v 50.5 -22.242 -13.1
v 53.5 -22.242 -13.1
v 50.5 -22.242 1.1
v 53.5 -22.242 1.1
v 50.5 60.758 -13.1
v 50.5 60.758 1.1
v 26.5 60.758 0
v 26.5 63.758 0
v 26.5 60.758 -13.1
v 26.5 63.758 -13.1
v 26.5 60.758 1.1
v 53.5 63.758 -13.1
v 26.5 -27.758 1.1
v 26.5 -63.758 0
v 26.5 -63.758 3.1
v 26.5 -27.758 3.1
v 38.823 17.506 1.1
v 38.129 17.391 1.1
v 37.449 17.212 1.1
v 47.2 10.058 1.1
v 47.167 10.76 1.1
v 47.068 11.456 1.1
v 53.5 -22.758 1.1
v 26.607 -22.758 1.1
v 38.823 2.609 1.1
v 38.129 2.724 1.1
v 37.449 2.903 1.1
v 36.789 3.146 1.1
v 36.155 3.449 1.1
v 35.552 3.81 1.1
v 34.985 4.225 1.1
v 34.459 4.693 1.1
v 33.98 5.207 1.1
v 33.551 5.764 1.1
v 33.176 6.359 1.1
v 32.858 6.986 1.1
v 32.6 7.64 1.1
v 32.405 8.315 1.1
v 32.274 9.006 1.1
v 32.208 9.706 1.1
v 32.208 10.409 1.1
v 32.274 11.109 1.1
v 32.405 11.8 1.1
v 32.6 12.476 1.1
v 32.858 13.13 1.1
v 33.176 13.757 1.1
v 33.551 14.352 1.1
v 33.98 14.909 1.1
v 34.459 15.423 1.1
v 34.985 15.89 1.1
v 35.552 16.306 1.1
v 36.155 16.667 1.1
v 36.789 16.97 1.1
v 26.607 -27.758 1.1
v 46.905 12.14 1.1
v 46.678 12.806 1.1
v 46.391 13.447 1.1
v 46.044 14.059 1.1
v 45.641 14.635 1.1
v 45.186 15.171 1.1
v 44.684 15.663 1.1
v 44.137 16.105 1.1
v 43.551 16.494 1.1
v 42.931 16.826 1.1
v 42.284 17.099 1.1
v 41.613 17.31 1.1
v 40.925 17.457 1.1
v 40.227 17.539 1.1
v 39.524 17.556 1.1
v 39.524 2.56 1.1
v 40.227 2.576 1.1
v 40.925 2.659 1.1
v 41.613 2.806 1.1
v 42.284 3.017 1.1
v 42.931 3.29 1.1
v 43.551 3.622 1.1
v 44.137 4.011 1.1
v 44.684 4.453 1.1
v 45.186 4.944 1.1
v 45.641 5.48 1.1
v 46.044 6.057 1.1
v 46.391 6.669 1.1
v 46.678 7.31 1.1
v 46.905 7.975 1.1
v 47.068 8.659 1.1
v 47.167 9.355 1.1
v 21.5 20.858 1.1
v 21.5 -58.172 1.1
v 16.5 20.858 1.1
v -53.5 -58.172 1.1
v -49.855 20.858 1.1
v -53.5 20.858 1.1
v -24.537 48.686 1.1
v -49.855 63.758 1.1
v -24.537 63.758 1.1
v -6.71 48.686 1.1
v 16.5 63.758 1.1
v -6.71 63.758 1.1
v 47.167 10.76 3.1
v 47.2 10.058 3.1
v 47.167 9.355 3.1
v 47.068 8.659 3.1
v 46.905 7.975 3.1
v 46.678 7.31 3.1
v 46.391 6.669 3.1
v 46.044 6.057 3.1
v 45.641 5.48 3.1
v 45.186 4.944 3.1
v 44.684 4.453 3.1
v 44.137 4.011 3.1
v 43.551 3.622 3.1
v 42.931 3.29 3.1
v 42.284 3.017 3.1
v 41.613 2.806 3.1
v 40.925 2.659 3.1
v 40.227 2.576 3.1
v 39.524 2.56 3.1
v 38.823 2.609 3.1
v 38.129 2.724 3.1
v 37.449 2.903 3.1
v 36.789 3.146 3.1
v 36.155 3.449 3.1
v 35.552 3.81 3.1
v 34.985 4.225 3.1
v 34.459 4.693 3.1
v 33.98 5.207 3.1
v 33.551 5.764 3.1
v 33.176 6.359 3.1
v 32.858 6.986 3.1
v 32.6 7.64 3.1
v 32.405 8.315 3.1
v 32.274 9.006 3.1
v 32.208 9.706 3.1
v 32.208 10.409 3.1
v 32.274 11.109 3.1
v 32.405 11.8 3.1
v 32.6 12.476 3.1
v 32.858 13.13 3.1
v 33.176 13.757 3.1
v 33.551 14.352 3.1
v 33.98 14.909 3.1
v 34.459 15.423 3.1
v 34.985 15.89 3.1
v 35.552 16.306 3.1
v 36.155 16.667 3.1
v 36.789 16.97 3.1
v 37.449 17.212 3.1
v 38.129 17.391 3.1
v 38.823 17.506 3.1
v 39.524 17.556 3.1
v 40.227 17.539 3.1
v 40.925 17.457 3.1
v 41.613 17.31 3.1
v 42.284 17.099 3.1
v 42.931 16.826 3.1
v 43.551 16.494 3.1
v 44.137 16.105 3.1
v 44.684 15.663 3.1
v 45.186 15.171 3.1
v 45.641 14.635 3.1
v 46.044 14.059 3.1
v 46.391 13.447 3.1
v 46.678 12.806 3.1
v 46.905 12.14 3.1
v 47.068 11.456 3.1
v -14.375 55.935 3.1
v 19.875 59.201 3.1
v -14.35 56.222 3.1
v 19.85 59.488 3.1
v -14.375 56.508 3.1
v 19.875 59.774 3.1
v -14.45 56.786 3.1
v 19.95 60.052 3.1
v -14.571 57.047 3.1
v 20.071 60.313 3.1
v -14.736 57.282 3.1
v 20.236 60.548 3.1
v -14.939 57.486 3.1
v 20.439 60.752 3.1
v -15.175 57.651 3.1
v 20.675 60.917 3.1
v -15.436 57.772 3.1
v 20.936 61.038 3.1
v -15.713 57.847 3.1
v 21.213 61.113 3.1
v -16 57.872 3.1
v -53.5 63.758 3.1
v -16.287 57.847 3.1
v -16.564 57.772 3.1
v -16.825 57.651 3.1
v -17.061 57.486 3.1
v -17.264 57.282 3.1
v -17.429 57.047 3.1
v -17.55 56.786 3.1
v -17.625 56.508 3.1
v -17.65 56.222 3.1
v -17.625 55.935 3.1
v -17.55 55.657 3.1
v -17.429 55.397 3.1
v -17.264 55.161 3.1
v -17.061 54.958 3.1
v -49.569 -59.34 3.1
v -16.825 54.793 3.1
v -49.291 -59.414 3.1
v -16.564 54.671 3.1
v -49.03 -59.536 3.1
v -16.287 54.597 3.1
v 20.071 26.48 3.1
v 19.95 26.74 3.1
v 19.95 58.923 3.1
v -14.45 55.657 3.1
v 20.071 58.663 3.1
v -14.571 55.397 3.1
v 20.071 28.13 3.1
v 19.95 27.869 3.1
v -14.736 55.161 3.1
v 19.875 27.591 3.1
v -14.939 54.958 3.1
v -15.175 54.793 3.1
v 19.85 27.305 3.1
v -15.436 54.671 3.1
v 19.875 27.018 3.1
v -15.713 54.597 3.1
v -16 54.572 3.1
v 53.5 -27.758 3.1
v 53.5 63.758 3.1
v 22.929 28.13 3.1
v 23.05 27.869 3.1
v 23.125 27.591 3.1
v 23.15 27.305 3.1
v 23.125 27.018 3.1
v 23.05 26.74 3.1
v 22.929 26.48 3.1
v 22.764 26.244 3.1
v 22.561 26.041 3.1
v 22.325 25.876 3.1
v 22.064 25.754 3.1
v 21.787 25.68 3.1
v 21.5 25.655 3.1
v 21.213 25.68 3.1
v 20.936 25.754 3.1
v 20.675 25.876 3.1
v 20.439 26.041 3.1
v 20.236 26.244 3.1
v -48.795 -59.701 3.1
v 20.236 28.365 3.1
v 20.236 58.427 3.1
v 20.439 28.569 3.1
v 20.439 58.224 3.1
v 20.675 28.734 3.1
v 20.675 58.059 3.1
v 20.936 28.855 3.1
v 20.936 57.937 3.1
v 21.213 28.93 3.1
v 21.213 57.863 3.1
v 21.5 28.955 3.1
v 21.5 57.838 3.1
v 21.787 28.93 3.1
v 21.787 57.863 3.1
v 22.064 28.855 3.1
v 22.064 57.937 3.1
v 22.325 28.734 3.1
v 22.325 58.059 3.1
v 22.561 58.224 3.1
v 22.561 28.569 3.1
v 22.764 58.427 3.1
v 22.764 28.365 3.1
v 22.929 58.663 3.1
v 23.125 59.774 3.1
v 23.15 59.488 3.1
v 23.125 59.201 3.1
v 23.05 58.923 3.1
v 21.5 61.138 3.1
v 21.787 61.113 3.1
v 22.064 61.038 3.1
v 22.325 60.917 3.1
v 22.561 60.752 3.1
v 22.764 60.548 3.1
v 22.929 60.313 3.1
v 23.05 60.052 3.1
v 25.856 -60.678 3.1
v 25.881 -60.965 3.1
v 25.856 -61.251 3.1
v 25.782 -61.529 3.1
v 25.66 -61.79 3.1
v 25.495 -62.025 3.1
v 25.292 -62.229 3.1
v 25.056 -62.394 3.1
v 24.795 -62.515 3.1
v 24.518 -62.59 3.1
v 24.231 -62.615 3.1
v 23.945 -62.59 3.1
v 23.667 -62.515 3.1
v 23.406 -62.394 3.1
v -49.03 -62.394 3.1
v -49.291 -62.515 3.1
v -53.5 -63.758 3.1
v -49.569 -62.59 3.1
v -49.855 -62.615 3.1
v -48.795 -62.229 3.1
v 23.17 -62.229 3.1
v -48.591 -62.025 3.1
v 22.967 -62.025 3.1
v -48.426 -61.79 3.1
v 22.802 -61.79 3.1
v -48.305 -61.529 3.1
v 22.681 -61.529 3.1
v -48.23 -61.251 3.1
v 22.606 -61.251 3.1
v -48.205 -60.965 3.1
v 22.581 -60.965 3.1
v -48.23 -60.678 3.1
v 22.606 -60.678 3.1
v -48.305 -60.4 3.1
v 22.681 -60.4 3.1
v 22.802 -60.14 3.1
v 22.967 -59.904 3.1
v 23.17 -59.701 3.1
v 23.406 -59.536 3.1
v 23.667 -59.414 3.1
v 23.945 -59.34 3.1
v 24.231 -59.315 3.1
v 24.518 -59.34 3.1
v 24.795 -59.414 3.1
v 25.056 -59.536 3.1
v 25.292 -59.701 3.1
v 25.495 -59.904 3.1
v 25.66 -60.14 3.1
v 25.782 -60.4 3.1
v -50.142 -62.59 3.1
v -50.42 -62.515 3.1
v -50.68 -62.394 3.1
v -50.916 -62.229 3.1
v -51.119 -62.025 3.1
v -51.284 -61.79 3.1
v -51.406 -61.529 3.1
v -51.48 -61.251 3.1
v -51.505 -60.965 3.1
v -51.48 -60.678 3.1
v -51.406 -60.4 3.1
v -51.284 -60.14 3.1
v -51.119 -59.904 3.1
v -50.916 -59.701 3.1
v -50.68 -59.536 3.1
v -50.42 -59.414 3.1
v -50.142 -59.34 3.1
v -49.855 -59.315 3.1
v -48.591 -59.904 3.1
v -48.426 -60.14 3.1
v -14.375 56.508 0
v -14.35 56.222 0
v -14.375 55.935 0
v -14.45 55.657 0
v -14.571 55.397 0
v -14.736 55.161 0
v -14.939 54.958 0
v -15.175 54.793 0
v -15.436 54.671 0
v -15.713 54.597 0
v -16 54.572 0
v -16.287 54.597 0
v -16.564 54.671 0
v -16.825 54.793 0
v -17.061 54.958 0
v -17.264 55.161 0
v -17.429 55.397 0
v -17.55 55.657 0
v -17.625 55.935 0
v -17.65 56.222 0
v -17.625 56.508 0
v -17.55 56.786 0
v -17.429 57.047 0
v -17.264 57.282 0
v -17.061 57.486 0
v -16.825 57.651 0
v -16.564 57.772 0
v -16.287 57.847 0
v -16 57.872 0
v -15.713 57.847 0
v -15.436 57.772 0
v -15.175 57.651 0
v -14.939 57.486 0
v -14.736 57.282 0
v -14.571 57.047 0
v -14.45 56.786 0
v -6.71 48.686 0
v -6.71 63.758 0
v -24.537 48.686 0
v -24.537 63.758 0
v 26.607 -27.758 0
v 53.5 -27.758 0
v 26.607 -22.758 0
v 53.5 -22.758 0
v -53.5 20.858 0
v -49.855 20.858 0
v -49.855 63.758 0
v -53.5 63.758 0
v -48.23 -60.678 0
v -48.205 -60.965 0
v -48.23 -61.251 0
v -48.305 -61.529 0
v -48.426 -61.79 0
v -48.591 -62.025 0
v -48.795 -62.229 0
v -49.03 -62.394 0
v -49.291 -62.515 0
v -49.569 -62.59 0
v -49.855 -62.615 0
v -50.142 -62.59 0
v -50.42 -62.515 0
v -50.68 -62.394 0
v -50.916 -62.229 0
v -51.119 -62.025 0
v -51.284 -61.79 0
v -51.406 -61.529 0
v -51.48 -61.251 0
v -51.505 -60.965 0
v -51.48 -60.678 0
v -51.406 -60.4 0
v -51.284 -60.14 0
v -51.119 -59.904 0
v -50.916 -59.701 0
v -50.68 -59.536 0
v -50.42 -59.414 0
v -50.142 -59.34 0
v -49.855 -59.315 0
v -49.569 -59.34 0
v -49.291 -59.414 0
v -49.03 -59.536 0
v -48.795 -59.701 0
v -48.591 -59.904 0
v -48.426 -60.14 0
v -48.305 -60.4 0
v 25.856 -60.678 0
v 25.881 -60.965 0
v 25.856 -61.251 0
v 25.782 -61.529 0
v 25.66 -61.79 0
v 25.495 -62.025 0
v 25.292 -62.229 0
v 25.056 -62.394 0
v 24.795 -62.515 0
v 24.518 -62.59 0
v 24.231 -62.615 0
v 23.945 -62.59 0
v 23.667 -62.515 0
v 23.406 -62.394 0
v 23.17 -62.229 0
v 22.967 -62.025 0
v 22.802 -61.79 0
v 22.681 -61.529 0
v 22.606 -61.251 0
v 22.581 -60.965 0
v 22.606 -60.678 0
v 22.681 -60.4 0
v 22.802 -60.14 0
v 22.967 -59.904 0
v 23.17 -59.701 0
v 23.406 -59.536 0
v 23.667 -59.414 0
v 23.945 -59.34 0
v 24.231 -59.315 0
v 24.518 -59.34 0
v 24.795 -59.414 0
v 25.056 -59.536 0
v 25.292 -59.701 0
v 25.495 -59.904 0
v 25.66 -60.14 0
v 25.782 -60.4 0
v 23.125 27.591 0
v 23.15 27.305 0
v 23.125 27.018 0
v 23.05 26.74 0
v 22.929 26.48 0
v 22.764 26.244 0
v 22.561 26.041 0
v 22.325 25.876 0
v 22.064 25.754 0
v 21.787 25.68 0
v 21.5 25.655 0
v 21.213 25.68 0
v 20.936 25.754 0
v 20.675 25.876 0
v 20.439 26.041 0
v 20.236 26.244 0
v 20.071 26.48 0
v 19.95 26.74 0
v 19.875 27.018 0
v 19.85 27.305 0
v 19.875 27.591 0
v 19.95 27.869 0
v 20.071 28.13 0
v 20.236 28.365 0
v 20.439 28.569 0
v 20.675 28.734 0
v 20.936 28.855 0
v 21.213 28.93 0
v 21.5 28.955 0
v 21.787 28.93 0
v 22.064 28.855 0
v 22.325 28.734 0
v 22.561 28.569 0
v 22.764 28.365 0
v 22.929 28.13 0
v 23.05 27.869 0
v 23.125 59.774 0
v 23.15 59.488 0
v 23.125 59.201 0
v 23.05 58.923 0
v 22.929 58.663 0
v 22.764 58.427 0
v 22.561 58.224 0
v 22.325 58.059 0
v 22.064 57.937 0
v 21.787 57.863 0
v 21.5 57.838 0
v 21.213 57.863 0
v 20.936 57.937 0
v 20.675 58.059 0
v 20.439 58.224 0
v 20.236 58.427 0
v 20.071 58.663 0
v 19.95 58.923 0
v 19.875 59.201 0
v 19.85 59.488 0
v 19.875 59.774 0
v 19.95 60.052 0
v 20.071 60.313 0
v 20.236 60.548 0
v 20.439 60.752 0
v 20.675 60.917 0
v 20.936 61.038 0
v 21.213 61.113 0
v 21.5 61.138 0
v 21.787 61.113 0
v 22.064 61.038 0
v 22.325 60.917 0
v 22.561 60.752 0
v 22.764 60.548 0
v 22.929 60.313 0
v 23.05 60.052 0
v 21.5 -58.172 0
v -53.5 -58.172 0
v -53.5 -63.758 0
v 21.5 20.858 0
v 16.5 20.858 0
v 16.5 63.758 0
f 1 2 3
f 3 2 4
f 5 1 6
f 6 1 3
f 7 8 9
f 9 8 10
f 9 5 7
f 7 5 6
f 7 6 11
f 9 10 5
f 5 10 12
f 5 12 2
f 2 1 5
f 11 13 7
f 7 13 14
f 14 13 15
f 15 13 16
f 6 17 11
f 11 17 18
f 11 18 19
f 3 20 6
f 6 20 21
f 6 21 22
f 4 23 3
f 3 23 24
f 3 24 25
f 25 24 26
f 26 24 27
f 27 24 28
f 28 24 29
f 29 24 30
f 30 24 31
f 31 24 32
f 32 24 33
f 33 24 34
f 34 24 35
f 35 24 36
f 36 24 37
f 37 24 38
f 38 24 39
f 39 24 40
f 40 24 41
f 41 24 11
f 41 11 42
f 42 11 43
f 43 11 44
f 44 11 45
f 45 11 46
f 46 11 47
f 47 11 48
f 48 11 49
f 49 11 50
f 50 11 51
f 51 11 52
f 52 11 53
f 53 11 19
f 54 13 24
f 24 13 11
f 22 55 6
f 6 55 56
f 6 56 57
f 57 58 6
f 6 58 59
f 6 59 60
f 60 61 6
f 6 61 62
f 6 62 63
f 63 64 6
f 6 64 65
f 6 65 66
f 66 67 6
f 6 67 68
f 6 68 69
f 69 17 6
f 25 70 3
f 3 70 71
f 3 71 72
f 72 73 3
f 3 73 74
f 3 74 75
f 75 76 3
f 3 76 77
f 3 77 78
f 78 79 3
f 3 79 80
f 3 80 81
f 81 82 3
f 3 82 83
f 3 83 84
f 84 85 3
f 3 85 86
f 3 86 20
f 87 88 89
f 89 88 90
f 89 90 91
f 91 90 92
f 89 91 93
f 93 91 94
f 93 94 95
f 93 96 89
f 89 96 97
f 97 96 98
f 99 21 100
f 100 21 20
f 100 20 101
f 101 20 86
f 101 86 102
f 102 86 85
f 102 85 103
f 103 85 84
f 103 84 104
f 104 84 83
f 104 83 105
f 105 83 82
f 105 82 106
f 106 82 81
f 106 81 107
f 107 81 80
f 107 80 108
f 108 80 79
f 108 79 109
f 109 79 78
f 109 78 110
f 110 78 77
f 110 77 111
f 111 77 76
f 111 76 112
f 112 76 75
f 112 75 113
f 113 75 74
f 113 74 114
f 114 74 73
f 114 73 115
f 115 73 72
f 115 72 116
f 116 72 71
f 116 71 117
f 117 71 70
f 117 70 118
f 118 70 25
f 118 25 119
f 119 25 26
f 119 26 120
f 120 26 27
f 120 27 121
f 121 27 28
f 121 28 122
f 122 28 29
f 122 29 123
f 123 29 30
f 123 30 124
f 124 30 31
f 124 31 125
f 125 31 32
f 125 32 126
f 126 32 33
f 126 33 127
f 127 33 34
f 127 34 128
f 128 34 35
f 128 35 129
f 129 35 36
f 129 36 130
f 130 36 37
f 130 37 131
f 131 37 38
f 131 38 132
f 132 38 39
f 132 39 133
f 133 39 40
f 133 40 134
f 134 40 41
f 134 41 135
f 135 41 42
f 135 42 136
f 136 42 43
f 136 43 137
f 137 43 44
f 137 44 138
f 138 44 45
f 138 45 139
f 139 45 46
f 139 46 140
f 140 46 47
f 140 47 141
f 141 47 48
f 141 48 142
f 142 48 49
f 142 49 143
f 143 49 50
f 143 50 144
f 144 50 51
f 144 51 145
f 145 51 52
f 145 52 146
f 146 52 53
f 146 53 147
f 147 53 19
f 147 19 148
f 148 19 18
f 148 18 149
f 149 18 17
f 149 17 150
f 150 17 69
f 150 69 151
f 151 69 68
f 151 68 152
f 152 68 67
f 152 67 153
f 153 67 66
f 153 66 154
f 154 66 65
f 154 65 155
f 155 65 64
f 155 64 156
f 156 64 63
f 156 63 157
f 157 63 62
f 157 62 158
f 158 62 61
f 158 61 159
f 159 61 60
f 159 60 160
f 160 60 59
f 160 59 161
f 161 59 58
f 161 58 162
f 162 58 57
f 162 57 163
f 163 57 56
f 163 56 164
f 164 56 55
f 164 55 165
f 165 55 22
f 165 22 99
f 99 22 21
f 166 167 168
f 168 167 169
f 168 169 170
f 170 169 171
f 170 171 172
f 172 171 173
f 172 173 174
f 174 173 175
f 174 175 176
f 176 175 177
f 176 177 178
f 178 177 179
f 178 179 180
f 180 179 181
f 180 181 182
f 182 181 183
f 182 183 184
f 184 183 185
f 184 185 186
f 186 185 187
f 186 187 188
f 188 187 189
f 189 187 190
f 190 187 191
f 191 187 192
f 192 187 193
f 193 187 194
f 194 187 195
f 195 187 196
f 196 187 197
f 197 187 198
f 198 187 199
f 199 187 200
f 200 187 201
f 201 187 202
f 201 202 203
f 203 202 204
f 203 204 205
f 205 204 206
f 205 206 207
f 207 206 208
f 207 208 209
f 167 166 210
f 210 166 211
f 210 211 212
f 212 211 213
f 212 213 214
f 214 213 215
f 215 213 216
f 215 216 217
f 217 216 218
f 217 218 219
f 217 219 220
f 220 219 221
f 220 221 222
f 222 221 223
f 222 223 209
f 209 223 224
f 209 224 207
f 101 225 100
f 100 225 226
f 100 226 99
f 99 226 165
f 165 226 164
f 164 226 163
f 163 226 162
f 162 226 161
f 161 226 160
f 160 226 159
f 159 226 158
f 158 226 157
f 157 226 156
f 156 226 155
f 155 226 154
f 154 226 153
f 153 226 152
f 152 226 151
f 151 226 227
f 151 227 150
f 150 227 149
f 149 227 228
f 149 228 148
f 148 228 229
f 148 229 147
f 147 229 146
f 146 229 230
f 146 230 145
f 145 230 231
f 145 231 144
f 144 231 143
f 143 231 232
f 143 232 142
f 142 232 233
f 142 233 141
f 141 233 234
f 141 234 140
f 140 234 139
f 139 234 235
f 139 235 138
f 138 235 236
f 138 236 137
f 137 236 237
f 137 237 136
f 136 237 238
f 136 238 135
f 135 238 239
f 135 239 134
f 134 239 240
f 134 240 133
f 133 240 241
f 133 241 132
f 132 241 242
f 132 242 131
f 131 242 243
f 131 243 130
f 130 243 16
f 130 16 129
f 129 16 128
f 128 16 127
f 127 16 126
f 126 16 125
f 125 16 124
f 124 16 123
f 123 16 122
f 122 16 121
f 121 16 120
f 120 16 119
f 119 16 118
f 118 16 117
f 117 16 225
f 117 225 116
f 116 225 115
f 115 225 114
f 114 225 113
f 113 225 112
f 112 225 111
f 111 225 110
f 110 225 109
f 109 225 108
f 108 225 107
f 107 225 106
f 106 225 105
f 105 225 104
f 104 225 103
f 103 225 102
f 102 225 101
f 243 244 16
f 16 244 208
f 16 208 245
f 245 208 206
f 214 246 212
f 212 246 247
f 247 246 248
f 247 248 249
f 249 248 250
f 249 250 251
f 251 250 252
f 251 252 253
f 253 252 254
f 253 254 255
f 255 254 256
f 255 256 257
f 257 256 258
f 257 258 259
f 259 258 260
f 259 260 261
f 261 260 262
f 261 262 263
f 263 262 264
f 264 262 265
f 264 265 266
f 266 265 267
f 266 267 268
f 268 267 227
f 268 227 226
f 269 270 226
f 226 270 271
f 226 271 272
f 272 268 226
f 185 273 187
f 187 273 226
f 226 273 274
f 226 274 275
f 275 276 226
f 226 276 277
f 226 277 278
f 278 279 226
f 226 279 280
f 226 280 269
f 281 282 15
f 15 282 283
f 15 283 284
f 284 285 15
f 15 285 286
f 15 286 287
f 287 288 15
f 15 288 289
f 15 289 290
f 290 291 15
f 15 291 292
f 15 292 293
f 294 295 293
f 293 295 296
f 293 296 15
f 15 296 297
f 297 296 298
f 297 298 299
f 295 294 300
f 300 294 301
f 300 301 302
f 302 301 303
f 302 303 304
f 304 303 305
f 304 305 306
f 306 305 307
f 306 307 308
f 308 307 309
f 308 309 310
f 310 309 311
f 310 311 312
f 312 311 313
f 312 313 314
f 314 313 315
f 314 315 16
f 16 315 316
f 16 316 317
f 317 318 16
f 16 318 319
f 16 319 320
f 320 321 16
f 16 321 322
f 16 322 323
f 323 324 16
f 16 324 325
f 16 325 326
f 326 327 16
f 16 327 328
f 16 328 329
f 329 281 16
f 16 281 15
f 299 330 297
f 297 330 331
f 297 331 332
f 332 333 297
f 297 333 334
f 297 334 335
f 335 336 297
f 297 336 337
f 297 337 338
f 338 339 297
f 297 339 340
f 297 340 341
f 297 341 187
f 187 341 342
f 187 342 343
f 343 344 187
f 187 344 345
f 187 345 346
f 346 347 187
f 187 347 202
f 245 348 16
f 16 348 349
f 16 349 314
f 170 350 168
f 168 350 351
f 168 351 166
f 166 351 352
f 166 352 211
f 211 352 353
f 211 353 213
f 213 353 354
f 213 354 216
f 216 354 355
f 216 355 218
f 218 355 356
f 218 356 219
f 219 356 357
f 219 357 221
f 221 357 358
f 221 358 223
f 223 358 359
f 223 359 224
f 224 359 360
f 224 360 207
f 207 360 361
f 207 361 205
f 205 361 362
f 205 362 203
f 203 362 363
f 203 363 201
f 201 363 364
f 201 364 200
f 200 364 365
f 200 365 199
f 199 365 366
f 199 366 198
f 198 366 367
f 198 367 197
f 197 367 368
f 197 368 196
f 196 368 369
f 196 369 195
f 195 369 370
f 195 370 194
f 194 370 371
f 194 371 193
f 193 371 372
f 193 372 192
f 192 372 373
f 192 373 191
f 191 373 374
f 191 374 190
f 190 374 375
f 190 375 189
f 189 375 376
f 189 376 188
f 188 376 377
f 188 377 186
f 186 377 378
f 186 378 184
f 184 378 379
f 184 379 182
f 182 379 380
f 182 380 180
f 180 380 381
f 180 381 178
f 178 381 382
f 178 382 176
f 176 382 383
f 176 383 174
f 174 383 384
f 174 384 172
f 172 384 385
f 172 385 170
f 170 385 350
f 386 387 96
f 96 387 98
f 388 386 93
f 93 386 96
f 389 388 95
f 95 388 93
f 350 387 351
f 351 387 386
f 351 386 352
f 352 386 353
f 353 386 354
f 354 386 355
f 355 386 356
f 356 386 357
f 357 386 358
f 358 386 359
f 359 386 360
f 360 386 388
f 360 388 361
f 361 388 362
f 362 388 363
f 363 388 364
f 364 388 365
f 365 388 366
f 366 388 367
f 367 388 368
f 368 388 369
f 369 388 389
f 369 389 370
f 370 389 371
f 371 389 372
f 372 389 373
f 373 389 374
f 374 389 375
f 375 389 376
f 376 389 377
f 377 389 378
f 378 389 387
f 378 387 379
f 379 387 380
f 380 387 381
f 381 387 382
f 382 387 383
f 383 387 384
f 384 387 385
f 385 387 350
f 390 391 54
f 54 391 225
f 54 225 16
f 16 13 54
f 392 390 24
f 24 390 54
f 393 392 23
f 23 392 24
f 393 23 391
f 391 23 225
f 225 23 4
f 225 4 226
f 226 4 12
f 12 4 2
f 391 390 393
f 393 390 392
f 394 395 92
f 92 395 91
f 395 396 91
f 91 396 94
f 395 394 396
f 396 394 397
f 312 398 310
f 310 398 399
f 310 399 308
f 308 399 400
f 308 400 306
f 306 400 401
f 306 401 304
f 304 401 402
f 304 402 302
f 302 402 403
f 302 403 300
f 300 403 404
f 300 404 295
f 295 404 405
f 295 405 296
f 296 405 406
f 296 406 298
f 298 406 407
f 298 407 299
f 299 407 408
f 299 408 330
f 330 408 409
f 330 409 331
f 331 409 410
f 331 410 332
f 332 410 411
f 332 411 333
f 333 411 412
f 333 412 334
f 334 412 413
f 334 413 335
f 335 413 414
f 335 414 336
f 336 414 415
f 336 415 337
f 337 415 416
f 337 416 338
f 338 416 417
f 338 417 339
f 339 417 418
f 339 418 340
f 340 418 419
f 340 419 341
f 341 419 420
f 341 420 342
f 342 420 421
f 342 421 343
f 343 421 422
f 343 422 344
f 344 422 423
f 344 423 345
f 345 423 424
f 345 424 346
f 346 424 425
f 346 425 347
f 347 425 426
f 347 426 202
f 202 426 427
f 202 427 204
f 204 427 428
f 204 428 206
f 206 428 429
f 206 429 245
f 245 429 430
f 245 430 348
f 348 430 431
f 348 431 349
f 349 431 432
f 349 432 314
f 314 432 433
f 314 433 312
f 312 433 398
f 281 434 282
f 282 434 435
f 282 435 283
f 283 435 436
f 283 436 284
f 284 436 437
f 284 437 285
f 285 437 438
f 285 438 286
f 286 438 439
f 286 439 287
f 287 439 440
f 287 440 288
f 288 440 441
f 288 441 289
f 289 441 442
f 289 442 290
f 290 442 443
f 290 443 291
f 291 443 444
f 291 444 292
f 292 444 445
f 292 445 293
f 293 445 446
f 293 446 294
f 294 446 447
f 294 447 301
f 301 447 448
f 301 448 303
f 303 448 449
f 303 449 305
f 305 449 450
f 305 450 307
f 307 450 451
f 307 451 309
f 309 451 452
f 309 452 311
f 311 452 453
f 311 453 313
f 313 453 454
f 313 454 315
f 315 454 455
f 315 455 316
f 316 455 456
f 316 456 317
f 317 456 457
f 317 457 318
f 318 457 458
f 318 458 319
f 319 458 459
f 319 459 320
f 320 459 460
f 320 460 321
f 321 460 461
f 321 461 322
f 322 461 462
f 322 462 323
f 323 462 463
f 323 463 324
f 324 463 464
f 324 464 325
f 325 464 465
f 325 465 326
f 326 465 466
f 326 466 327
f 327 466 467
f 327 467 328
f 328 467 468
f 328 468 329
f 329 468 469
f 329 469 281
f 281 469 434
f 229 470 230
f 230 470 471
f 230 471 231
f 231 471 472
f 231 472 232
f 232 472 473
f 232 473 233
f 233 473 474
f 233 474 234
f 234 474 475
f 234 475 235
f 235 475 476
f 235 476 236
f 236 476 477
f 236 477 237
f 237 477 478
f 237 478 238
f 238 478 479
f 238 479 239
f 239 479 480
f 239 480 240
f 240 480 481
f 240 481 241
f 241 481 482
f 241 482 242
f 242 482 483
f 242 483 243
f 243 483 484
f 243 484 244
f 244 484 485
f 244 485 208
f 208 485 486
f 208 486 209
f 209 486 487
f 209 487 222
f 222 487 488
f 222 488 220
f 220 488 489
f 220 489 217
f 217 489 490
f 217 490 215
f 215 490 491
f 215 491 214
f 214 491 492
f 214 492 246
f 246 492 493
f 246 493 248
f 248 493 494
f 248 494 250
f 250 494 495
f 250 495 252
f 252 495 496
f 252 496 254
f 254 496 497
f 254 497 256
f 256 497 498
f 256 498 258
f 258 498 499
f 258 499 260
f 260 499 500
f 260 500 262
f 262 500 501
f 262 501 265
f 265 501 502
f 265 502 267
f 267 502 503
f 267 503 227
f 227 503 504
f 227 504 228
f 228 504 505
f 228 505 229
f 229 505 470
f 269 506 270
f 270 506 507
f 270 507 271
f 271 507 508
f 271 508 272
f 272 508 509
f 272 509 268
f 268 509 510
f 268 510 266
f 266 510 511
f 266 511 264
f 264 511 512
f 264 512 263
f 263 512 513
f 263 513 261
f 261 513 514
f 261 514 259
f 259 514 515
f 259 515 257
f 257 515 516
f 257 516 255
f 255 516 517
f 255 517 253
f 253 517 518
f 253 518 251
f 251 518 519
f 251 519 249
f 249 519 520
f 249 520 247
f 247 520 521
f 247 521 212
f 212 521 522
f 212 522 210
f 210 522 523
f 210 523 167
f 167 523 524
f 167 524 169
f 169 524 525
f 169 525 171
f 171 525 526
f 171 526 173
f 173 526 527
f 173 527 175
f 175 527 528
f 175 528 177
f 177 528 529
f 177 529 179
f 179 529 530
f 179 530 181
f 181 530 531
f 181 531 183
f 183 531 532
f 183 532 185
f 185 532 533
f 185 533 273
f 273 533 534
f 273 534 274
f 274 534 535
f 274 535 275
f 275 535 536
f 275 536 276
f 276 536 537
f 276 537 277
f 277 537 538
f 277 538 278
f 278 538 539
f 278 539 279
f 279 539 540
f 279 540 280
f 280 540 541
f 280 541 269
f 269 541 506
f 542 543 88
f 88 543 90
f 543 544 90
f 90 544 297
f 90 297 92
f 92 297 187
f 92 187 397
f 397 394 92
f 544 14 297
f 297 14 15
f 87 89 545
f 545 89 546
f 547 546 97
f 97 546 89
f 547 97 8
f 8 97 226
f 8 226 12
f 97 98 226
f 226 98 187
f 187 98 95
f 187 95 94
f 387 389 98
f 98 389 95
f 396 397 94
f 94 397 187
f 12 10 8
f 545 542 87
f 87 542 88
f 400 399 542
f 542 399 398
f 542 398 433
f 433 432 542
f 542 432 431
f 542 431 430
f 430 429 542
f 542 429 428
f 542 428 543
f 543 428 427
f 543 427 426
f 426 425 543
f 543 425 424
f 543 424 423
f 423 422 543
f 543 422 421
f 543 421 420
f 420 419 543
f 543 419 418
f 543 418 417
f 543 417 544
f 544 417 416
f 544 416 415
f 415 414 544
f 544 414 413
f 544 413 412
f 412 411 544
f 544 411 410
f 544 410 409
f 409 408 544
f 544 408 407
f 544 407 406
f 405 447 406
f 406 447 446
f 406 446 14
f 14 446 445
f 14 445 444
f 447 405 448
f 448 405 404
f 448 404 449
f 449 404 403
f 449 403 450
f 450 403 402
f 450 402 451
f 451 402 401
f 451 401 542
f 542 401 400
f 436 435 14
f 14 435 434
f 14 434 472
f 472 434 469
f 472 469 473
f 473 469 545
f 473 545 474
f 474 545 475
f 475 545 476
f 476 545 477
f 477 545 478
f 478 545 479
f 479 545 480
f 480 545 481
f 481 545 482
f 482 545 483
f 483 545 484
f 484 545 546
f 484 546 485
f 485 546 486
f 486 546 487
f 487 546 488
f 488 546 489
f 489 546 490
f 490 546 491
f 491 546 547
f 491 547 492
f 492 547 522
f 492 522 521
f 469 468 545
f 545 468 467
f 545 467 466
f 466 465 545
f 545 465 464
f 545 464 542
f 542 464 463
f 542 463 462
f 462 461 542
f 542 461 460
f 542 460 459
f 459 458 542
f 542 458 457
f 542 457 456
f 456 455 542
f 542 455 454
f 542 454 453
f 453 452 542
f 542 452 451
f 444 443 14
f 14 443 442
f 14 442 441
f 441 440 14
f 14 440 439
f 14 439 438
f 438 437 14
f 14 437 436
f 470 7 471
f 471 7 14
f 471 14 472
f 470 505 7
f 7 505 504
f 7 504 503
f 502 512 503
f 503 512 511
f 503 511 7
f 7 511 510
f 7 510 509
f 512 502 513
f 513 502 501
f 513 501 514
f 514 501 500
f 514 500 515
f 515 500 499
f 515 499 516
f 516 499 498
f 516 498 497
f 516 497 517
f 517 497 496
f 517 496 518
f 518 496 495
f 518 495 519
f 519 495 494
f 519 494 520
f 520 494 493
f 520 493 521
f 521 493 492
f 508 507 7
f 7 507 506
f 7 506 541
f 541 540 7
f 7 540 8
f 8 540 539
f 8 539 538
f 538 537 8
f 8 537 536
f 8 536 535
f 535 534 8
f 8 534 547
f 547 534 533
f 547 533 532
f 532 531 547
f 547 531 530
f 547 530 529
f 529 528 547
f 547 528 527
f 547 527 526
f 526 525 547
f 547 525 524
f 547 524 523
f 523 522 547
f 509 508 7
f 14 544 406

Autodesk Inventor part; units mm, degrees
ref_plane "YZ Plane" through (0, 0, 0) normal (1, 0, 0) x (0, 1, 0)
ref_plane "XZ Plane" through (0, 0, 0) normal (0, 1, 0) x (-1, 0, 0)
ref_plane "Work Plane1" through (0, 0, 0) normal (0, 0, 1) x (1, 0, 0)
sketch "Sketch1" plane through (0, 0, 0) normal (0, 0, 1) x (1, 0, 0)
  circle A0 centre (-49.8552, -60.9647) radius 1.65 construction
  circle A1 centre (24.2311, -60.9647) radius 1.65 construction
  arc A2 (22.7622, -32.9022) -> (21.5, -36.5843) centre (37.7579, -40.1) ccw construction
  line L0 (22.7622, -32.9022) -> (25.7, -32.9022) construction
  line L1 (25.7, -32.9022) -> (25.7, -35.65) construction
  arc A3 (25.7, -44.55) -> (25.7, -35.65) centre (2.4892, -40.1) ccw construction
  line L2 (25.7, -44.55) -> (25.7, -47.2978) construction
  line L3 (25.7, -47.2978) -> (22.7622, -47.2978) construction
  arc A4 (21.5, -43.6157) -> (22.7622, -47.2978) centre (37.7579, -40.1) ccw construction
  line L4 (21.5, -58.1715) -> (21.5, -43.6157) construction
  line L5 (-53.5, -58.1715) -> (21.5, -58.1715) construction
  line L6 (-53.5, -63.7578) -> (-53.5, -58.1715) construction
  line L7 (26.5, -63.7578) -> (-53.5, -63.7578) construction
  line L8 (26.5, -27.7578) -> (26.5, -63.7578) construction
  line L9 (53.5, -27.7578) -> (26.5, -27.7578) construction
  line L10 (53.5, -22.7578) -> (53.5, -27.7578) construction
  line L11 (21.5, -22.7578) -> (53.5, -22.7578) construction
  line L12 (21.5, -36.5843) -> (21.5, -22.7578) construction
  line L13 (21.5, -39.9422) -> (21.5, 19.8578) construction
  line L14 (26.5, 63.7578) -> (26.5, 13.7578) construction
  line L15 (16.5, 20.8578) -> (16.5, 63.7578) construction
  line L16 (-6.7098, 63.7578) -> (-6.7098, 48.6857) construction
  line L17 (-24.537, 20.8578) -> (-24.537, 63.7578) construction
  line L18 (-49.8552, 63.7578) -> (-49.8552, 20.8578) construction
  line L19 (-53.5, 63.7578) -> (-53.5, -63.7578) construction
  line L20 (-53.5, -63.7578) -> (26.5, -63.7578)
  line L21 (26.5, -63.7578) -> (26.5, -58.1715)
  line L22 (26.5, -58.1715) -> (-53.5, -58.1715)
  line L23 (-53.5, -58.1715) -> (-53.5, -63.7578)
  line L24 (21.5, -58.1715) -> (26.5, -58.1715)
  line L25 (26.5, -58.1715) -> (26.5, 20.8578)
  line L26 (26.5, 20.8578) -> (21.5, 20.8578)
  line L27 (21.5, 20.8578) -> (21.5, -58.1715)
  line L28 (16.5, 20.8578) -> (26.5, 20.8578)
  line L29 (26.5, 20.8578) -> (26.5, 63.7578)
  line L30 (26.5, 63.7578) -> (16.5, 63.7578)
  line L31 (16.5, 63.7578) -> (16.5, 20.8578)
  line L32 (-49.8552, 63.7578) -> (-24.537, 63.7578)
  line L33 (-24.537, 63.7578) -> (-24.537, 20.8578)
  line L34 (-24.537, 20.8578) -> (-49.8552, 20.8578)
  line L35 (-49.8552, 20.8578) -> (-49.8552, 63.7578)
  line L36 (26.6067, -27.7578) -> (53.5, -27.7578)
  line L37 (53.5, -27.7578) -> (53.5, -22.7578)
  line L38 (53.5, -22.7578) -> (26.6067, -22.7578)
  line L39 (26.6067, -22.7578) -> (26.6067, -27.7578)
  line L40 (-6.7098, 63.7578) -> (-24.537, 63.7578)
  line L41 (-24.537, 63.7578) -> (-24.537, 48.6857)
  line L42 (-24.537, 48.6857) -> (-6.7098, 48.6857)
  line L43 (-6.7098, 48.6857) -> (-6.7098, 63.7578)
  circle A5 centre (21.5, 59.4877) radius 1.65 projected
  circle A6 centre (24.2311, -60.9647) radius 1.65 projected
  circle A7 centre (-49.8552, -60.9647) radius 1.65 projected
  circle A8 centre (-16, 56.2217) radius 1.65 projected
  line L44 (-53.5, 63.7578) -> (-49.8552, 63.7578)
  line L45 (-49.8552, 63.7578) -> (-49.8552, 20.8578)
  line L46 (-49.8552, 20.8578) -> (-53.5, 20.8578)
  line L47 (-53.5, 20.8578) -> (-53.5, 63.7578)
  circle A9 centre (21.5, 27.3048) radius 1.65 projected
  point P0 (0, 0)
extrude "Extrusion1" add sketch "Sketch1" along normal blind 1.1 contours L23 L22 L21 L20 | L22 L27 L26 L25 | L26 L28 L31 L30 L29 | L35 L46 L47 L44 | L40 L43 L42 L33 | L39 L38 L37 L36
sketch "Sketch2" plane through (0, 0, 1.1) normal (0, 0, 1) x (1, 0, 0)
  circle A0 centre (-49.8552, -60.9647) radius 1.65 projected
  circle A1 centre (24.2311, -60.9647) radius 1.65 projected
  circle A2 centre (21.5, 59.4877) radius 1.65 projected
  line L0 (26.5, -63.7578) -> (26.5, 63.7578) projected
  line L1 (26.5, 63.7578) -> (16.5, 63.7578) projected
  line L2 (16.5, 63.7578) -> (16.5, 20.8578) projected
  line L3 (16.5, 20.8578) -> (21.5, 20.8578) projected
  line L4 (21.5, 20.8578) -> (21.5, -58.1715) projected
  line L5 (21.5, -58.1715) -> (-53.5, -58.1715) projected
  line L6 (-53.5, -58.1715) -> (-53.5, -63.7578) projected
  line L7 (-53.5, -63.7578) -> (26.5, -63.7578) projected
  line L8 (-49.8552, 63.7578) -> (-49.8552, 20.8578) projected
  line L9 (-6.7098, 63.7578) -> (-49.8552, 63.7578) projected
  line L10 (21.5, 20.8578) -> (16.5, 20.8578) projected
  line L11 (-49.8552, 63.7578) -> (16.5, 63.7578)
  line L12 (16.5, 63.7578) -> (16.5, 20.8578)
  line L13 (16.5, 20.8578) -> (-49.8552, 20.8578)
  line L14 (-49.8552, 20.8578) -> (-49.8552, 63.7578)
  line L15 (21.5, -58.1715) -> (-53.5, -58.1715) projected
  line L16 (-49.8552, 20.8578) -> (21.5, 20.8578)
  line L17 (21.5, 20.8578) -> (21.5, -58.1715)
  line L18 (21.5, -58.1715) -> (-49.8552, -58.1715)
  line L19 (-49.8552, -58.1715) -> (-49.8552, 20.8578)
  line L20 (-53.5, -58.1715) -> (-49.8552, -58.1715)
  line L21 (-49.8552, -58.1715) -> (-49.8552, 63.7578)
  line L22 (-49.8552, 63.7578) -> (-53.5, 63.7578)
  line L23 (-53.5, 63.7578) -> (-53.5, -58.1715)
  line L24 (53.5, -27.7578) -> (53.5, -22.7578) projected
  line L25 (26.5, 63.7578) -> (53.5, 63.7578)
  line L26 (53.5, 63.7578) -> (53.5, -27.7578)
  line L27 (53.5, -27.7578) -> (26.5, -27.7578)
  line L28 (26.5, -27.7578) -> (26.5, 63.7578)
  circle A3 centre (21.5, 59.4877) radius 1.65 projected
  circle A4 centre (-16, 56.2217) radius 1.65 projected
  line L29 (16.5, 63.7578) -> (16.5, 20.8578) projected
  line L30 (16.5, 63.7578) -> (26.5, 63.7578)
  circle A5 centre (24.2311, -60.9647) radius 1.65 projected
  line L31 (16.5, 20.8578) -> (-49.8552, 20.8578)
  line L32 (-49.8552, 20.8578) -> (-49.8552, 63.7578)
  line L33 (-49.8552, 63.7578) -> (16.5, 63.7578)
  line L34 (16.5, 63.7578) -> (16.5, 20.8578)
  ellipse E0 centre (39.7, 10.0578) end of major axis (44.7, 10.0578) minor radius 3.5355 projected
  circle A6 centre (39.7, 10.0578) radius 7.5
  circle A7 centre (21.5, 27.3048) radius 1.65 projected
  point P0 (0, 0)
  dimension "d4" = 15
extrude "Extrusion2" add sketch "Sketch2" along normal blind 2 contours L7 L6 L5 L4 L3 L2 L1 L0 | L0 L25 L26 L24 L27 | L23 L22 L8 L19 L5 | L2 L13 L8 L9 L11 | L19 L13 L3 L4 L5
ref_plane "Work Plane2" through (26.5, 18.8696, -13.1) normal (0, 0, 1) x (1, 0, 0)
sketch "Sketch3" plane through (0, 0, 1.1) normal (0, 0, -1) x (-1, 0, 0)
  circle A0 centre (16, 56.2217) radius 1.65 projected
  circle A1 centre (-39.7, 10.0578) radius 7.5 projected
  circle A2 centre (-21.5, 59.4877) radius 1.65 projected
  circle A3 centre (-24.2311, -60.9647) radius 1.65 projected
  circle A4 centre (49.8552, -60.9647) radius 1.65 projected
  line L0 (-53.5, 63.7578) -> (53.5, 63.7578) projected
  line L1 (53.5, 63.7578) -> (53.5, -63.7578) projected
  line L2 (53.5, -63.7578) -> (-26.5, -63.7578) projected
  line L3 (-26.5, -63.7578) -> (-26.5, -27.7578) projected
  line L4 (-26.5, -27.7578) -> (-53.5, -27.7578) projected
  line L5 (-53.5, -27.7578) -> (-53.5, 63.7578) projected
  line L6 (-26.5, 18.8696) -> (-45, 18.8696) projected
  line L7 (-45, 18.8696) -> (-45, 63.7578) projected
  line L8 (-45, 63.7578) -> (-26.5, 63.7578) projected
  line L9 (-26.5, 63.7578) -> (-26.5, 18.8696) projected
  line L10 (-70.915, -41.1304) -> (-130.915, -41.1304) projected
  line L11 (-130.915, -41.1304) -> (-130.915, 18.8696) projected
  line L12 (-130.915, 18.8696) -> (-45, 18.8696) projected
  line L13 (-45, 18.8696) -> (-45, 5.872) projected
  line L14 (-45, 5.872) -> (-26.5, 5.872) projected
  line L15 (-26.5, 5.872) -> (-26.5, 13.7578) projected
  line L16 (-26.5, 13.7578) -> (-21.5, 13.7578) projected
  line L17 (-21.5, 13.7578) -> (-21.5, 19.8578) projected
  line L18 (-21.5, 19.8578) -> (53.5, 19.8578) projected
  line L19 (53.5, 19.8578) -> (53.5, -58.1715) projected
  line L20 (53.5, -58.1715) -> (-21.5, -58.1715) projected
  line L21 (-21.5, -58.1715) -> (-21.5, -39.9578) projected
  line L22 (-21.5, -39.9578) -> (-21.5, -22.7578) projected
  line L23 (-21.5, -22.7578) -> (-28.8534, -22.7578) projected
  line L24 (-28.8534, -22.7578) -> (-28.8534, -2.7892) projected
  line L25 (-28.8534, -2.7892) -> (-50.0866, -2.7892) projected
  line L26 (-50.0866, -2.7892) -> (-50.0866, -22.7578) projected
  line L27 (-50.0866, -22.7578) -> (-53.5, -22.7578) projected
  line L28 (-53.5, -22.7578) -> (-53.5, -27.7578) projected
  line L29 (-53.5, -27.7578) -> (-70.915, -27.7578) projected
  line L30 (-70.915, -27.7578) -> (-70.915, -41.1304) projected
  circle A5 centre (-125.915, -11.1304) radius 2.95 projected
  circle A6 centre (-125.915, -36.1304) radius 2.95 projected
  circle A7 centre (-100.915, -36.1304) radius 2.95 projected
  circle A8 centre (-75.915, -36.1304) radius 2.95 projected
  circle A9 centre (-75.915, -11.1304) radius 2.95 projected
  circle A10 centre (-75.915, 13.8696) radius 2.95 projected
  circle A11 centre (-100.915, 13.8696) radius 2.95 projected
  circle A12 centre (-125.915, 13.8696) radius 2.95 projected
  line L31 (-53.5, 63.7578) -> (53.5, 63.7578) projected
  line L32 (-53.5, 63.7578) -> (-50.5, 63.7578)
  line L33 (-50.5, 63.7578) -> (-50.5, -22.2422)
  line L34 (-50.5, -22.2422) -> (-53.5, -22.2422)
  line L35 (-53.5, -22.2422) -> (-53.5, 63.7578)
  line L36 (-50.5, 63.7578) -> (-26.5, 63.7578)
  line L37 (-26.5, 63.7578) -> (-26.5, 60.7578)
  line L38 (-26.5, 60.7578) -> (-50.5, 60.7578)
  line L39 (-50.5, 60.7578) -> (-50.5, 63.7578)
  line L40 (-16.5, 63.7578) -> (-26.5, 63.7578) projected
  line L41 (-50.5, 60.7578) -> (-26.5, 60.7578)
  line L42 (-26.5, 60.7578) -> (-26.5, 63.7578)
  line L43 (-26.5, 63.7578) -> (-50.5, 63.7578)
  line L44 (-50.5, 63.7578) -> (-50.5, 60.7578)
  point P0 (0, 0)
  dimension "d5" = 3
  dimension "d6" = 86
  dimension "d7" = 3
extrude "Extrusion3" add sketch "Sketch3" along normal up to surface (14.2 mm away) contours L38 L33 L0 L7 | L7 L0 L9 L38 | L33 L34 L5 L12 | L12 L5 L0 L33
properties part number "10_MiniSPIM_Lid"
